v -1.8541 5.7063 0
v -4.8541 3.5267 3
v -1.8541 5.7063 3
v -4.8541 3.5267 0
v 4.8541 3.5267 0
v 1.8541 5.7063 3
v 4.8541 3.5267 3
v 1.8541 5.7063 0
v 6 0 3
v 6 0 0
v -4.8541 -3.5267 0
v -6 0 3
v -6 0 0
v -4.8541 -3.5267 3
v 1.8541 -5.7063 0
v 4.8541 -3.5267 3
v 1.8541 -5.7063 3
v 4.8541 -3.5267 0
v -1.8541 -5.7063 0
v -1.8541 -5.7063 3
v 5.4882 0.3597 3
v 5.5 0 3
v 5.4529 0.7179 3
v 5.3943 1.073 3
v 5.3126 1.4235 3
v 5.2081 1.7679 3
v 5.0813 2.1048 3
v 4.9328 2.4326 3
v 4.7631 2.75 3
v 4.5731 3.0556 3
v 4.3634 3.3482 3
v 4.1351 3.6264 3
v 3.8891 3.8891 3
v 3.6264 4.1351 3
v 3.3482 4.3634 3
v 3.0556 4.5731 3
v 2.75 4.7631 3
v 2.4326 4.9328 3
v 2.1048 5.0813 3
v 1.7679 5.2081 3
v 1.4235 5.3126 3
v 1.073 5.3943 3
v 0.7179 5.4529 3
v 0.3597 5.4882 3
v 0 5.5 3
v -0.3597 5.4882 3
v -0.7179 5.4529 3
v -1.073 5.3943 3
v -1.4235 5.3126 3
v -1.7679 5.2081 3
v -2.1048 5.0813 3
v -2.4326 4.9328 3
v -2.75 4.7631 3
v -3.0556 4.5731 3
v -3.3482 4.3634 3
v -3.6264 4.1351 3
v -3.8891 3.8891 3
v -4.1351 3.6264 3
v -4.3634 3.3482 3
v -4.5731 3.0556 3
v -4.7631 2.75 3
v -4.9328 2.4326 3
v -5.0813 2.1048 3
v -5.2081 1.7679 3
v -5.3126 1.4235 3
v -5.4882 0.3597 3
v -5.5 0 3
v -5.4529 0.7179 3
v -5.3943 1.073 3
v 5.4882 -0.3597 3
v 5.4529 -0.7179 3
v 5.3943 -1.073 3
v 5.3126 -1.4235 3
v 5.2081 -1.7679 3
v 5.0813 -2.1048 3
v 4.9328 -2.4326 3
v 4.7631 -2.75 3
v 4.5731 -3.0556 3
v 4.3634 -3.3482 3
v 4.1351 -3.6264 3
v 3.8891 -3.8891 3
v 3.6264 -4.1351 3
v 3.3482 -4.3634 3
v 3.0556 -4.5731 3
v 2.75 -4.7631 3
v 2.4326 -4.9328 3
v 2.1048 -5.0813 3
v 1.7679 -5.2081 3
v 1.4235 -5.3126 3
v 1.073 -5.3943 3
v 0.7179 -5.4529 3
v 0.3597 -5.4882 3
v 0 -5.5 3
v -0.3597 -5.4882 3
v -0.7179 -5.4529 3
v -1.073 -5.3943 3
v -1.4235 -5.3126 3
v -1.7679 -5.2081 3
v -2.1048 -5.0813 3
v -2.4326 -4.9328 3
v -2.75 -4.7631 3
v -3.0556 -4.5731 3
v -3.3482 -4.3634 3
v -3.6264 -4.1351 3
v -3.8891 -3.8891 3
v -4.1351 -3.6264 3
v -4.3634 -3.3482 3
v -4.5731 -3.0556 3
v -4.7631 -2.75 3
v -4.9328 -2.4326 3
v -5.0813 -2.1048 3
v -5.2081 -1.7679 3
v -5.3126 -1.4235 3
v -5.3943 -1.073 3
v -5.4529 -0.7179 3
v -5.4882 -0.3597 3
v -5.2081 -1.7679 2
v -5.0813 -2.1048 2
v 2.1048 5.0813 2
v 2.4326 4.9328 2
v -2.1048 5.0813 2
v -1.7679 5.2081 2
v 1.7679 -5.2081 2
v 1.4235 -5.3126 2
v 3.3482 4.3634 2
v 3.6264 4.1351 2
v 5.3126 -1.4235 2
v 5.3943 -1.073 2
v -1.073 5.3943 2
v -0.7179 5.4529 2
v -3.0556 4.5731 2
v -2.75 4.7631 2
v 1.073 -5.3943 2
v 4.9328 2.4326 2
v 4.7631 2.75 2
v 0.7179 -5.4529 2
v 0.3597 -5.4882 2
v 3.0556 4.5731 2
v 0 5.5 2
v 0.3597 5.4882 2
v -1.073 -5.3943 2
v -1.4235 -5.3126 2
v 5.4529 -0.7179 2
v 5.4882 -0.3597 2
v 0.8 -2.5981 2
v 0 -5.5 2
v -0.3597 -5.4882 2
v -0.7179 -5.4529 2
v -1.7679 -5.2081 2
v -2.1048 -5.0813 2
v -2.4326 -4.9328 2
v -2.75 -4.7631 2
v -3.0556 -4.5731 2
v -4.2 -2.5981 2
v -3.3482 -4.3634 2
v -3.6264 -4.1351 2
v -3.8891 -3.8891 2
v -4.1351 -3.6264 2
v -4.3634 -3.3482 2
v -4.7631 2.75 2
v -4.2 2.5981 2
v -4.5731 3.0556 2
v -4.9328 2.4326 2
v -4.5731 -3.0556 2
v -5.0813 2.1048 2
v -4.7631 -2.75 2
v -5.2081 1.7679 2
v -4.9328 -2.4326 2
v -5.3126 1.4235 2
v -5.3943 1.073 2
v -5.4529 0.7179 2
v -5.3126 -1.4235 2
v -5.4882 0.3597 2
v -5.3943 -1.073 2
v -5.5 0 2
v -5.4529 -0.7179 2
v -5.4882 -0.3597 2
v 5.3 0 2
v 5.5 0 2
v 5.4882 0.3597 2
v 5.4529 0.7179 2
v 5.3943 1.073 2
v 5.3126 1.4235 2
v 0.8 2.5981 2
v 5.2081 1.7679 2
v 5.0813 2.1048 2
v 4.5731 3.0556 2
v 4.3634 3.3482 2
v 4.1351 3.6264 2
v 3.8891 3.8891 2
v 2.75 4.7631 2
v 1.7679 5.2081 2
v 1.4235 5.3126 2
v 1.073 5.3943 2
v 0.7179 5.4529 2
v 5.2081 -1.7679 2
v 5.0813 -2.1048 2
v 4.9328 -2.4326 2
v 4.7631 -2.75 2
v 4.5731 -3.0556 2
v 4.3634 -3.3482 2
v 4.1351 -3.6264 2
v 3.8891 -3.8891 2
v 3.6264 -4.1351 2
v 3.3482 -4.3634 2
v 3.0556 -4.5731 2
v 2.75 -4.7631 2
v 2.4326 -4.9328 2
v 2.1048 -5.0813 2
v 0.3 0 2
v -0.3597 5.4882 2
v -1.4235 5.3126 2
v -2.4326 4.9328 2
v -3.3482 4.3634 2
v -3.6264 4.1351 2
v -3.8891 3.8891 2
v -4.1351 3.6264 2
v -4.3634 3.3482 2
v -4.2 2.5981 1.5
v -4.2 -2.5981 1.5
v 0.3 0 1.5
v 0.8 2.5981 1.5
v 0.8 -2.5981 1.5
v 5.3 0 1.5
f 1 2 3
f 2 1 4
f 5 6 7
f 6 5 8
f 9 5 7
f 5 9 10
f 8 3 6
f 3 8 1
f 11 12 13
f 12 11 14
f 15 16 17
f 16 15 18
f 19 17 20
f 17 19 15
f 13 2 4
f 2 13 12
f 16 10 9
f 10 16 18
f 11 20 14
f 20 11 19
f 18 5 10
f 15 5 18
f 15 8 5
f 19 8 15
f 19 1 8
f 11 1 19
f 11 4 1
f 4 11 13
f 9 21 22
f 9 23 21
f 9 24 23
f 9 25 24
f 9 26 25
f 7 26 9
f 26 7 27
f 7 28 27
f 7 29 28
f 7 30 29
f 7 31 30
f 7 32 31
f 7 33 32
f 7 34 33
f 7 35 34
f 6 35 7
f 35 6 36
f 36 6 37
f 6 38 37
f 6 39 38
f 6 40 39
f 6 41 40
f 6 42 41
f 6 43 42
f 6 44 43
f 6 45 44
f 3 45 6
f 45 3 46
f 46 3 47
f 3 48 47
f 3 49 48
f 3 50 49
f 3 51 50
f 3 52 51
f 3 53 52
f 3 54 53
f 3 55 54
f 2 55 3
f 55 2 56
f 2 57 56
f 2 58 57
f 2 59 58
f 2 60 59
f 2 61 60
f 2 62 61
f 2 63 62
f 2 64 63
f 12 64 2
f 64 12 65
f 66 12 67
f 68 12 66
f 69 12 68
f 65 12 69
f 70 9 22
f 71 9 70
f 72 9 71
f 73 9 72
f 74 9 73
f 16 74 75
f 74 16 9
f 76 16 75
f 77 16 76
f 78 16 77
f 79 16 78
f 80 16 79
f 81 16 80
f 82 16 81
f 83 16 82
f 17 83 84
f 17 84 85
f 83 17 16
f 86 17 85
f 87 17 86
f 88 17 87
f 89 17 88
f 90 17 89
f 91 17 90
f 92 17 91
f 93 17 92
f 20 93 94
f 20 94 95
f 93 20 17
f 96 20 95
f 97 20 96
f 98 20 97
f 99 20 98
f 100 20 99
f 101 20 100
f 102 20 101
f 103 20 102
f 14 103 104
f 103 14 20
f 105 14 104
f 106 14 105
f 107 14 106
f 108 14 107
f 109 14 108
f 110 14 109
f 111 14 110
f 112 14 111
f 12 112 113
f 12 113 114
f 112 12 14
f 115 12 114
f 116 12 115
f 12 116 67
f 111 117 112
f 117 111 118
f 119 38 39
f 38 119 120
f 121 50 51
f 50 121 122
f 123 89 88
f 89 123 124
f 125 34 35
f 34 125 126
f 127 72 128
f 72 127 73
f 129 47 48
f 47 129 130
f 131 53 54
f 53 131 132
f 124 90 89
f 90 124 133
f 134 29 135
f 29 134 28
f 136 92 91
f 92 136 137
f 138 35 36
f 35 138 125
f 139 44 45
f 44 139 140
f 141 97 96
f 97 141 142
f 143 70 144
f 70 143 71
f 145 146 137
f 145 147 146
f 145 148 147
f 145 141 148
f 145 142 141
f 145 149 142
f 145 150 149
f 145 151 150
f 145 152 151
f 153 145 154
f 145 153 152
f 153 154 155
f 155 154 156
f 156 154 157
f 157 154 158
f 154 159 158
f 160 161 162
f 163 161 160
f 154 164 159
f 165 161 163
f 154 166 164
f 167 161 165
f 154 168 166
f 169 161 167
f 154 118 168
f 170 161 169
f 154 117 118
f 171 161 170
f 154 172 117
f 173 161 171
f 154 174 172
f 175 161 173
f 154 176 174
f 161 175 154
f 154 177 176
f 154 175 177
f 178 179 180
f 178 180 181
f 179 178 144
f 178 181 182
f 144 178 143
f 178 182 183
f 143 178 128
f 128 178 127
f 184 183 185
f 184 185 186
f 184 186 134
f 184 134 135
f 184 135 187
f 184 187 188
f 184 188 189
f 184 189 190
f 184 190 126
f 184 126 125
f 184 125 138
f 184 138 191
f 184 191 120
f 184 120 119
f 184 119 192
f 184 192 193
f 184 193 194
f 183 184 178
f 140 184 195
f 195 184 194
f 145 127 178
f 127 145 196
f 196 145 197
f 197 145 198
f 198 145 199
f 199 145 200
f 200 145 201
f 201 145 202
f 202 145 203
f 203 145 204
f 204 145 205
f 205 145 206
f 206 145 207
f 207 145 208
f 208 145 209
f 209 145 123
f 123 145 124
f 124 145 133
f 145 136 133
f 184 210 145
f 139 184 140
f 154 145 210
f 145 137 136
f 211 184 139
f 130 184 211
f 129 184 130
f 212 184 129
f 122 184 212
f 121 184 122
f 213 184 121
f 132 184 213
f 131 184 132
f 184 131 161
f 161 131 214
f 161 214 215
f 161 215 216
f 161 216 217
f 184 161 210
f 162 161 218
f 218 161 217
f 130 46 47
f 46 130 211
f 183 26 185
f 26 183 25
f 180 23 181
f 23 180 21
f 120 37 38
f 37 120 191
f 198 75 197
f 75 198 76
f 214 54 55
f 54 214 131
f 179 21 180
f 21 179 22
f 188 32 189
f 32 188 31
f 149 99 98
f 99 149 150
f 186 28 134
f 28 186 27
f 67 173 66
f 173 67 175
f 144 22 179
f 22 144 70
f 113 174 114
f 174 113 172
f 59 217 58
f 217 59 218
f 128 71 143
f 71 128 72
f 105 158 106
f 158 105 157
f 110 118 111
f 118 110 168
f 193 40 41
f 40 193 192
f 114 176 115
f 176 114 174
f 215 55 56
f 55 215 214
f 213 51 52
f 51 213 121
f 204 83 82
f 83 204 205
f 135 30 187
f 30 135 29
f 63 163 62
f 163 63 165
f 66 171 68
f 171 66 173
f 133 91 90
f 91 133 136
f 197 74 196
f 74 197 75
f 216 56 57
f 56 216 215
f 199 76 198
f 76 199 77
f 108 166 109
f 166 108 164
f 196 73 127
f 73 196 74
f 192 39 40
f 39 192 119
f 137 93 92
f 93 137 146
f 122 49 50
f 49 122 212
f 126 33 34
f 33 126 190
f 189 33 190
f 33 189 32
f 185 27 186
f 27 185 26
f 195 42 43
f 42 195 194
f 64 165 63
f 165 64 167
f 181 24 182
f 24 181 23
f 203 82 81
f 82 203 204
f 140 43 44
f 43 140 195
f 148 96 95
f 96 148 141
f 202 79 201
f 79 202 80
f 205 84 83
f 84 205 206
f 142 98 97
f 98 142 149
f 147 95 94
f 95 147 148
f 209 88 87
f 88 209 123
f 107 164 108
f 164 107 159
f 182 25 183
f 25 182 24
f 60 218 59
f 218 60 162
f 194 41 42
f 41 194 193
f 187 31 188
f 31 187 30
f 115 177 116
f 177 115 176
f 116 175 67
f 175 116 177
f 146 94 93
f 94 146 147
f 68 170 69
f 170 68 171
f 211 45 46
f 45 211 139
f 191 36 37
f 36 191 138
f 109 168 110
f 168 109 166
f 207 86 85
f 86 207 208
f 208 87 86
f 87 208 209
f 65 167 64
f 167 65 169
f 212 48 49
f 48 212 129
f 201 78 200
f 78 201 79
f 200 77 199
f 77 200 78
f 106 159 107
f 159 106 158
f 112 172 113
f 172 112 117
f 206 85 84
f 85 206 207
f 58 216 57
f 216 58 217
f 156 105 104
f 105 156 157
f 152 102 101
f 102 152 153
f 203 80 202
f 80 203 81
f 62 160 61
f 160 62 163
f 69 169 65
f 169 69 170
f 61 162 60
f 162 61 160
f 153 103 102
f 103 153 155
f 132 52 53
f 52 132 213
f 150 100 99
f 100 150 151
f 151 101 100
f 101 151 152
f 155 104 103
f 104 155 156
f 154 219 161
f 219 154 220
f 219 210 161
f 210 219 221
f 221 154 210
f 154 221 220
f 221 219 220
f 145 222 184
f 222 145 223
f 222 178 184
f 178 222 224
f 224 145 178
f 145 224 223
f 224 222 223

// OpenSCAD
difference() {
 color("blue")
 difference() {
        cylinder(d=12,h=3,$fn=10);
        translate([0,0,2])
        
        cylinder(d=11,h=1.5,$fn=96);
    }
    
    translate([-2.7,0,1.5])
    color("gold")
    union() {
        cylinder(d=6, h=2, $fn=3);
        translate([5,0,0])
        cylinder(d=6, h=2, $fn=3);
    }
}
